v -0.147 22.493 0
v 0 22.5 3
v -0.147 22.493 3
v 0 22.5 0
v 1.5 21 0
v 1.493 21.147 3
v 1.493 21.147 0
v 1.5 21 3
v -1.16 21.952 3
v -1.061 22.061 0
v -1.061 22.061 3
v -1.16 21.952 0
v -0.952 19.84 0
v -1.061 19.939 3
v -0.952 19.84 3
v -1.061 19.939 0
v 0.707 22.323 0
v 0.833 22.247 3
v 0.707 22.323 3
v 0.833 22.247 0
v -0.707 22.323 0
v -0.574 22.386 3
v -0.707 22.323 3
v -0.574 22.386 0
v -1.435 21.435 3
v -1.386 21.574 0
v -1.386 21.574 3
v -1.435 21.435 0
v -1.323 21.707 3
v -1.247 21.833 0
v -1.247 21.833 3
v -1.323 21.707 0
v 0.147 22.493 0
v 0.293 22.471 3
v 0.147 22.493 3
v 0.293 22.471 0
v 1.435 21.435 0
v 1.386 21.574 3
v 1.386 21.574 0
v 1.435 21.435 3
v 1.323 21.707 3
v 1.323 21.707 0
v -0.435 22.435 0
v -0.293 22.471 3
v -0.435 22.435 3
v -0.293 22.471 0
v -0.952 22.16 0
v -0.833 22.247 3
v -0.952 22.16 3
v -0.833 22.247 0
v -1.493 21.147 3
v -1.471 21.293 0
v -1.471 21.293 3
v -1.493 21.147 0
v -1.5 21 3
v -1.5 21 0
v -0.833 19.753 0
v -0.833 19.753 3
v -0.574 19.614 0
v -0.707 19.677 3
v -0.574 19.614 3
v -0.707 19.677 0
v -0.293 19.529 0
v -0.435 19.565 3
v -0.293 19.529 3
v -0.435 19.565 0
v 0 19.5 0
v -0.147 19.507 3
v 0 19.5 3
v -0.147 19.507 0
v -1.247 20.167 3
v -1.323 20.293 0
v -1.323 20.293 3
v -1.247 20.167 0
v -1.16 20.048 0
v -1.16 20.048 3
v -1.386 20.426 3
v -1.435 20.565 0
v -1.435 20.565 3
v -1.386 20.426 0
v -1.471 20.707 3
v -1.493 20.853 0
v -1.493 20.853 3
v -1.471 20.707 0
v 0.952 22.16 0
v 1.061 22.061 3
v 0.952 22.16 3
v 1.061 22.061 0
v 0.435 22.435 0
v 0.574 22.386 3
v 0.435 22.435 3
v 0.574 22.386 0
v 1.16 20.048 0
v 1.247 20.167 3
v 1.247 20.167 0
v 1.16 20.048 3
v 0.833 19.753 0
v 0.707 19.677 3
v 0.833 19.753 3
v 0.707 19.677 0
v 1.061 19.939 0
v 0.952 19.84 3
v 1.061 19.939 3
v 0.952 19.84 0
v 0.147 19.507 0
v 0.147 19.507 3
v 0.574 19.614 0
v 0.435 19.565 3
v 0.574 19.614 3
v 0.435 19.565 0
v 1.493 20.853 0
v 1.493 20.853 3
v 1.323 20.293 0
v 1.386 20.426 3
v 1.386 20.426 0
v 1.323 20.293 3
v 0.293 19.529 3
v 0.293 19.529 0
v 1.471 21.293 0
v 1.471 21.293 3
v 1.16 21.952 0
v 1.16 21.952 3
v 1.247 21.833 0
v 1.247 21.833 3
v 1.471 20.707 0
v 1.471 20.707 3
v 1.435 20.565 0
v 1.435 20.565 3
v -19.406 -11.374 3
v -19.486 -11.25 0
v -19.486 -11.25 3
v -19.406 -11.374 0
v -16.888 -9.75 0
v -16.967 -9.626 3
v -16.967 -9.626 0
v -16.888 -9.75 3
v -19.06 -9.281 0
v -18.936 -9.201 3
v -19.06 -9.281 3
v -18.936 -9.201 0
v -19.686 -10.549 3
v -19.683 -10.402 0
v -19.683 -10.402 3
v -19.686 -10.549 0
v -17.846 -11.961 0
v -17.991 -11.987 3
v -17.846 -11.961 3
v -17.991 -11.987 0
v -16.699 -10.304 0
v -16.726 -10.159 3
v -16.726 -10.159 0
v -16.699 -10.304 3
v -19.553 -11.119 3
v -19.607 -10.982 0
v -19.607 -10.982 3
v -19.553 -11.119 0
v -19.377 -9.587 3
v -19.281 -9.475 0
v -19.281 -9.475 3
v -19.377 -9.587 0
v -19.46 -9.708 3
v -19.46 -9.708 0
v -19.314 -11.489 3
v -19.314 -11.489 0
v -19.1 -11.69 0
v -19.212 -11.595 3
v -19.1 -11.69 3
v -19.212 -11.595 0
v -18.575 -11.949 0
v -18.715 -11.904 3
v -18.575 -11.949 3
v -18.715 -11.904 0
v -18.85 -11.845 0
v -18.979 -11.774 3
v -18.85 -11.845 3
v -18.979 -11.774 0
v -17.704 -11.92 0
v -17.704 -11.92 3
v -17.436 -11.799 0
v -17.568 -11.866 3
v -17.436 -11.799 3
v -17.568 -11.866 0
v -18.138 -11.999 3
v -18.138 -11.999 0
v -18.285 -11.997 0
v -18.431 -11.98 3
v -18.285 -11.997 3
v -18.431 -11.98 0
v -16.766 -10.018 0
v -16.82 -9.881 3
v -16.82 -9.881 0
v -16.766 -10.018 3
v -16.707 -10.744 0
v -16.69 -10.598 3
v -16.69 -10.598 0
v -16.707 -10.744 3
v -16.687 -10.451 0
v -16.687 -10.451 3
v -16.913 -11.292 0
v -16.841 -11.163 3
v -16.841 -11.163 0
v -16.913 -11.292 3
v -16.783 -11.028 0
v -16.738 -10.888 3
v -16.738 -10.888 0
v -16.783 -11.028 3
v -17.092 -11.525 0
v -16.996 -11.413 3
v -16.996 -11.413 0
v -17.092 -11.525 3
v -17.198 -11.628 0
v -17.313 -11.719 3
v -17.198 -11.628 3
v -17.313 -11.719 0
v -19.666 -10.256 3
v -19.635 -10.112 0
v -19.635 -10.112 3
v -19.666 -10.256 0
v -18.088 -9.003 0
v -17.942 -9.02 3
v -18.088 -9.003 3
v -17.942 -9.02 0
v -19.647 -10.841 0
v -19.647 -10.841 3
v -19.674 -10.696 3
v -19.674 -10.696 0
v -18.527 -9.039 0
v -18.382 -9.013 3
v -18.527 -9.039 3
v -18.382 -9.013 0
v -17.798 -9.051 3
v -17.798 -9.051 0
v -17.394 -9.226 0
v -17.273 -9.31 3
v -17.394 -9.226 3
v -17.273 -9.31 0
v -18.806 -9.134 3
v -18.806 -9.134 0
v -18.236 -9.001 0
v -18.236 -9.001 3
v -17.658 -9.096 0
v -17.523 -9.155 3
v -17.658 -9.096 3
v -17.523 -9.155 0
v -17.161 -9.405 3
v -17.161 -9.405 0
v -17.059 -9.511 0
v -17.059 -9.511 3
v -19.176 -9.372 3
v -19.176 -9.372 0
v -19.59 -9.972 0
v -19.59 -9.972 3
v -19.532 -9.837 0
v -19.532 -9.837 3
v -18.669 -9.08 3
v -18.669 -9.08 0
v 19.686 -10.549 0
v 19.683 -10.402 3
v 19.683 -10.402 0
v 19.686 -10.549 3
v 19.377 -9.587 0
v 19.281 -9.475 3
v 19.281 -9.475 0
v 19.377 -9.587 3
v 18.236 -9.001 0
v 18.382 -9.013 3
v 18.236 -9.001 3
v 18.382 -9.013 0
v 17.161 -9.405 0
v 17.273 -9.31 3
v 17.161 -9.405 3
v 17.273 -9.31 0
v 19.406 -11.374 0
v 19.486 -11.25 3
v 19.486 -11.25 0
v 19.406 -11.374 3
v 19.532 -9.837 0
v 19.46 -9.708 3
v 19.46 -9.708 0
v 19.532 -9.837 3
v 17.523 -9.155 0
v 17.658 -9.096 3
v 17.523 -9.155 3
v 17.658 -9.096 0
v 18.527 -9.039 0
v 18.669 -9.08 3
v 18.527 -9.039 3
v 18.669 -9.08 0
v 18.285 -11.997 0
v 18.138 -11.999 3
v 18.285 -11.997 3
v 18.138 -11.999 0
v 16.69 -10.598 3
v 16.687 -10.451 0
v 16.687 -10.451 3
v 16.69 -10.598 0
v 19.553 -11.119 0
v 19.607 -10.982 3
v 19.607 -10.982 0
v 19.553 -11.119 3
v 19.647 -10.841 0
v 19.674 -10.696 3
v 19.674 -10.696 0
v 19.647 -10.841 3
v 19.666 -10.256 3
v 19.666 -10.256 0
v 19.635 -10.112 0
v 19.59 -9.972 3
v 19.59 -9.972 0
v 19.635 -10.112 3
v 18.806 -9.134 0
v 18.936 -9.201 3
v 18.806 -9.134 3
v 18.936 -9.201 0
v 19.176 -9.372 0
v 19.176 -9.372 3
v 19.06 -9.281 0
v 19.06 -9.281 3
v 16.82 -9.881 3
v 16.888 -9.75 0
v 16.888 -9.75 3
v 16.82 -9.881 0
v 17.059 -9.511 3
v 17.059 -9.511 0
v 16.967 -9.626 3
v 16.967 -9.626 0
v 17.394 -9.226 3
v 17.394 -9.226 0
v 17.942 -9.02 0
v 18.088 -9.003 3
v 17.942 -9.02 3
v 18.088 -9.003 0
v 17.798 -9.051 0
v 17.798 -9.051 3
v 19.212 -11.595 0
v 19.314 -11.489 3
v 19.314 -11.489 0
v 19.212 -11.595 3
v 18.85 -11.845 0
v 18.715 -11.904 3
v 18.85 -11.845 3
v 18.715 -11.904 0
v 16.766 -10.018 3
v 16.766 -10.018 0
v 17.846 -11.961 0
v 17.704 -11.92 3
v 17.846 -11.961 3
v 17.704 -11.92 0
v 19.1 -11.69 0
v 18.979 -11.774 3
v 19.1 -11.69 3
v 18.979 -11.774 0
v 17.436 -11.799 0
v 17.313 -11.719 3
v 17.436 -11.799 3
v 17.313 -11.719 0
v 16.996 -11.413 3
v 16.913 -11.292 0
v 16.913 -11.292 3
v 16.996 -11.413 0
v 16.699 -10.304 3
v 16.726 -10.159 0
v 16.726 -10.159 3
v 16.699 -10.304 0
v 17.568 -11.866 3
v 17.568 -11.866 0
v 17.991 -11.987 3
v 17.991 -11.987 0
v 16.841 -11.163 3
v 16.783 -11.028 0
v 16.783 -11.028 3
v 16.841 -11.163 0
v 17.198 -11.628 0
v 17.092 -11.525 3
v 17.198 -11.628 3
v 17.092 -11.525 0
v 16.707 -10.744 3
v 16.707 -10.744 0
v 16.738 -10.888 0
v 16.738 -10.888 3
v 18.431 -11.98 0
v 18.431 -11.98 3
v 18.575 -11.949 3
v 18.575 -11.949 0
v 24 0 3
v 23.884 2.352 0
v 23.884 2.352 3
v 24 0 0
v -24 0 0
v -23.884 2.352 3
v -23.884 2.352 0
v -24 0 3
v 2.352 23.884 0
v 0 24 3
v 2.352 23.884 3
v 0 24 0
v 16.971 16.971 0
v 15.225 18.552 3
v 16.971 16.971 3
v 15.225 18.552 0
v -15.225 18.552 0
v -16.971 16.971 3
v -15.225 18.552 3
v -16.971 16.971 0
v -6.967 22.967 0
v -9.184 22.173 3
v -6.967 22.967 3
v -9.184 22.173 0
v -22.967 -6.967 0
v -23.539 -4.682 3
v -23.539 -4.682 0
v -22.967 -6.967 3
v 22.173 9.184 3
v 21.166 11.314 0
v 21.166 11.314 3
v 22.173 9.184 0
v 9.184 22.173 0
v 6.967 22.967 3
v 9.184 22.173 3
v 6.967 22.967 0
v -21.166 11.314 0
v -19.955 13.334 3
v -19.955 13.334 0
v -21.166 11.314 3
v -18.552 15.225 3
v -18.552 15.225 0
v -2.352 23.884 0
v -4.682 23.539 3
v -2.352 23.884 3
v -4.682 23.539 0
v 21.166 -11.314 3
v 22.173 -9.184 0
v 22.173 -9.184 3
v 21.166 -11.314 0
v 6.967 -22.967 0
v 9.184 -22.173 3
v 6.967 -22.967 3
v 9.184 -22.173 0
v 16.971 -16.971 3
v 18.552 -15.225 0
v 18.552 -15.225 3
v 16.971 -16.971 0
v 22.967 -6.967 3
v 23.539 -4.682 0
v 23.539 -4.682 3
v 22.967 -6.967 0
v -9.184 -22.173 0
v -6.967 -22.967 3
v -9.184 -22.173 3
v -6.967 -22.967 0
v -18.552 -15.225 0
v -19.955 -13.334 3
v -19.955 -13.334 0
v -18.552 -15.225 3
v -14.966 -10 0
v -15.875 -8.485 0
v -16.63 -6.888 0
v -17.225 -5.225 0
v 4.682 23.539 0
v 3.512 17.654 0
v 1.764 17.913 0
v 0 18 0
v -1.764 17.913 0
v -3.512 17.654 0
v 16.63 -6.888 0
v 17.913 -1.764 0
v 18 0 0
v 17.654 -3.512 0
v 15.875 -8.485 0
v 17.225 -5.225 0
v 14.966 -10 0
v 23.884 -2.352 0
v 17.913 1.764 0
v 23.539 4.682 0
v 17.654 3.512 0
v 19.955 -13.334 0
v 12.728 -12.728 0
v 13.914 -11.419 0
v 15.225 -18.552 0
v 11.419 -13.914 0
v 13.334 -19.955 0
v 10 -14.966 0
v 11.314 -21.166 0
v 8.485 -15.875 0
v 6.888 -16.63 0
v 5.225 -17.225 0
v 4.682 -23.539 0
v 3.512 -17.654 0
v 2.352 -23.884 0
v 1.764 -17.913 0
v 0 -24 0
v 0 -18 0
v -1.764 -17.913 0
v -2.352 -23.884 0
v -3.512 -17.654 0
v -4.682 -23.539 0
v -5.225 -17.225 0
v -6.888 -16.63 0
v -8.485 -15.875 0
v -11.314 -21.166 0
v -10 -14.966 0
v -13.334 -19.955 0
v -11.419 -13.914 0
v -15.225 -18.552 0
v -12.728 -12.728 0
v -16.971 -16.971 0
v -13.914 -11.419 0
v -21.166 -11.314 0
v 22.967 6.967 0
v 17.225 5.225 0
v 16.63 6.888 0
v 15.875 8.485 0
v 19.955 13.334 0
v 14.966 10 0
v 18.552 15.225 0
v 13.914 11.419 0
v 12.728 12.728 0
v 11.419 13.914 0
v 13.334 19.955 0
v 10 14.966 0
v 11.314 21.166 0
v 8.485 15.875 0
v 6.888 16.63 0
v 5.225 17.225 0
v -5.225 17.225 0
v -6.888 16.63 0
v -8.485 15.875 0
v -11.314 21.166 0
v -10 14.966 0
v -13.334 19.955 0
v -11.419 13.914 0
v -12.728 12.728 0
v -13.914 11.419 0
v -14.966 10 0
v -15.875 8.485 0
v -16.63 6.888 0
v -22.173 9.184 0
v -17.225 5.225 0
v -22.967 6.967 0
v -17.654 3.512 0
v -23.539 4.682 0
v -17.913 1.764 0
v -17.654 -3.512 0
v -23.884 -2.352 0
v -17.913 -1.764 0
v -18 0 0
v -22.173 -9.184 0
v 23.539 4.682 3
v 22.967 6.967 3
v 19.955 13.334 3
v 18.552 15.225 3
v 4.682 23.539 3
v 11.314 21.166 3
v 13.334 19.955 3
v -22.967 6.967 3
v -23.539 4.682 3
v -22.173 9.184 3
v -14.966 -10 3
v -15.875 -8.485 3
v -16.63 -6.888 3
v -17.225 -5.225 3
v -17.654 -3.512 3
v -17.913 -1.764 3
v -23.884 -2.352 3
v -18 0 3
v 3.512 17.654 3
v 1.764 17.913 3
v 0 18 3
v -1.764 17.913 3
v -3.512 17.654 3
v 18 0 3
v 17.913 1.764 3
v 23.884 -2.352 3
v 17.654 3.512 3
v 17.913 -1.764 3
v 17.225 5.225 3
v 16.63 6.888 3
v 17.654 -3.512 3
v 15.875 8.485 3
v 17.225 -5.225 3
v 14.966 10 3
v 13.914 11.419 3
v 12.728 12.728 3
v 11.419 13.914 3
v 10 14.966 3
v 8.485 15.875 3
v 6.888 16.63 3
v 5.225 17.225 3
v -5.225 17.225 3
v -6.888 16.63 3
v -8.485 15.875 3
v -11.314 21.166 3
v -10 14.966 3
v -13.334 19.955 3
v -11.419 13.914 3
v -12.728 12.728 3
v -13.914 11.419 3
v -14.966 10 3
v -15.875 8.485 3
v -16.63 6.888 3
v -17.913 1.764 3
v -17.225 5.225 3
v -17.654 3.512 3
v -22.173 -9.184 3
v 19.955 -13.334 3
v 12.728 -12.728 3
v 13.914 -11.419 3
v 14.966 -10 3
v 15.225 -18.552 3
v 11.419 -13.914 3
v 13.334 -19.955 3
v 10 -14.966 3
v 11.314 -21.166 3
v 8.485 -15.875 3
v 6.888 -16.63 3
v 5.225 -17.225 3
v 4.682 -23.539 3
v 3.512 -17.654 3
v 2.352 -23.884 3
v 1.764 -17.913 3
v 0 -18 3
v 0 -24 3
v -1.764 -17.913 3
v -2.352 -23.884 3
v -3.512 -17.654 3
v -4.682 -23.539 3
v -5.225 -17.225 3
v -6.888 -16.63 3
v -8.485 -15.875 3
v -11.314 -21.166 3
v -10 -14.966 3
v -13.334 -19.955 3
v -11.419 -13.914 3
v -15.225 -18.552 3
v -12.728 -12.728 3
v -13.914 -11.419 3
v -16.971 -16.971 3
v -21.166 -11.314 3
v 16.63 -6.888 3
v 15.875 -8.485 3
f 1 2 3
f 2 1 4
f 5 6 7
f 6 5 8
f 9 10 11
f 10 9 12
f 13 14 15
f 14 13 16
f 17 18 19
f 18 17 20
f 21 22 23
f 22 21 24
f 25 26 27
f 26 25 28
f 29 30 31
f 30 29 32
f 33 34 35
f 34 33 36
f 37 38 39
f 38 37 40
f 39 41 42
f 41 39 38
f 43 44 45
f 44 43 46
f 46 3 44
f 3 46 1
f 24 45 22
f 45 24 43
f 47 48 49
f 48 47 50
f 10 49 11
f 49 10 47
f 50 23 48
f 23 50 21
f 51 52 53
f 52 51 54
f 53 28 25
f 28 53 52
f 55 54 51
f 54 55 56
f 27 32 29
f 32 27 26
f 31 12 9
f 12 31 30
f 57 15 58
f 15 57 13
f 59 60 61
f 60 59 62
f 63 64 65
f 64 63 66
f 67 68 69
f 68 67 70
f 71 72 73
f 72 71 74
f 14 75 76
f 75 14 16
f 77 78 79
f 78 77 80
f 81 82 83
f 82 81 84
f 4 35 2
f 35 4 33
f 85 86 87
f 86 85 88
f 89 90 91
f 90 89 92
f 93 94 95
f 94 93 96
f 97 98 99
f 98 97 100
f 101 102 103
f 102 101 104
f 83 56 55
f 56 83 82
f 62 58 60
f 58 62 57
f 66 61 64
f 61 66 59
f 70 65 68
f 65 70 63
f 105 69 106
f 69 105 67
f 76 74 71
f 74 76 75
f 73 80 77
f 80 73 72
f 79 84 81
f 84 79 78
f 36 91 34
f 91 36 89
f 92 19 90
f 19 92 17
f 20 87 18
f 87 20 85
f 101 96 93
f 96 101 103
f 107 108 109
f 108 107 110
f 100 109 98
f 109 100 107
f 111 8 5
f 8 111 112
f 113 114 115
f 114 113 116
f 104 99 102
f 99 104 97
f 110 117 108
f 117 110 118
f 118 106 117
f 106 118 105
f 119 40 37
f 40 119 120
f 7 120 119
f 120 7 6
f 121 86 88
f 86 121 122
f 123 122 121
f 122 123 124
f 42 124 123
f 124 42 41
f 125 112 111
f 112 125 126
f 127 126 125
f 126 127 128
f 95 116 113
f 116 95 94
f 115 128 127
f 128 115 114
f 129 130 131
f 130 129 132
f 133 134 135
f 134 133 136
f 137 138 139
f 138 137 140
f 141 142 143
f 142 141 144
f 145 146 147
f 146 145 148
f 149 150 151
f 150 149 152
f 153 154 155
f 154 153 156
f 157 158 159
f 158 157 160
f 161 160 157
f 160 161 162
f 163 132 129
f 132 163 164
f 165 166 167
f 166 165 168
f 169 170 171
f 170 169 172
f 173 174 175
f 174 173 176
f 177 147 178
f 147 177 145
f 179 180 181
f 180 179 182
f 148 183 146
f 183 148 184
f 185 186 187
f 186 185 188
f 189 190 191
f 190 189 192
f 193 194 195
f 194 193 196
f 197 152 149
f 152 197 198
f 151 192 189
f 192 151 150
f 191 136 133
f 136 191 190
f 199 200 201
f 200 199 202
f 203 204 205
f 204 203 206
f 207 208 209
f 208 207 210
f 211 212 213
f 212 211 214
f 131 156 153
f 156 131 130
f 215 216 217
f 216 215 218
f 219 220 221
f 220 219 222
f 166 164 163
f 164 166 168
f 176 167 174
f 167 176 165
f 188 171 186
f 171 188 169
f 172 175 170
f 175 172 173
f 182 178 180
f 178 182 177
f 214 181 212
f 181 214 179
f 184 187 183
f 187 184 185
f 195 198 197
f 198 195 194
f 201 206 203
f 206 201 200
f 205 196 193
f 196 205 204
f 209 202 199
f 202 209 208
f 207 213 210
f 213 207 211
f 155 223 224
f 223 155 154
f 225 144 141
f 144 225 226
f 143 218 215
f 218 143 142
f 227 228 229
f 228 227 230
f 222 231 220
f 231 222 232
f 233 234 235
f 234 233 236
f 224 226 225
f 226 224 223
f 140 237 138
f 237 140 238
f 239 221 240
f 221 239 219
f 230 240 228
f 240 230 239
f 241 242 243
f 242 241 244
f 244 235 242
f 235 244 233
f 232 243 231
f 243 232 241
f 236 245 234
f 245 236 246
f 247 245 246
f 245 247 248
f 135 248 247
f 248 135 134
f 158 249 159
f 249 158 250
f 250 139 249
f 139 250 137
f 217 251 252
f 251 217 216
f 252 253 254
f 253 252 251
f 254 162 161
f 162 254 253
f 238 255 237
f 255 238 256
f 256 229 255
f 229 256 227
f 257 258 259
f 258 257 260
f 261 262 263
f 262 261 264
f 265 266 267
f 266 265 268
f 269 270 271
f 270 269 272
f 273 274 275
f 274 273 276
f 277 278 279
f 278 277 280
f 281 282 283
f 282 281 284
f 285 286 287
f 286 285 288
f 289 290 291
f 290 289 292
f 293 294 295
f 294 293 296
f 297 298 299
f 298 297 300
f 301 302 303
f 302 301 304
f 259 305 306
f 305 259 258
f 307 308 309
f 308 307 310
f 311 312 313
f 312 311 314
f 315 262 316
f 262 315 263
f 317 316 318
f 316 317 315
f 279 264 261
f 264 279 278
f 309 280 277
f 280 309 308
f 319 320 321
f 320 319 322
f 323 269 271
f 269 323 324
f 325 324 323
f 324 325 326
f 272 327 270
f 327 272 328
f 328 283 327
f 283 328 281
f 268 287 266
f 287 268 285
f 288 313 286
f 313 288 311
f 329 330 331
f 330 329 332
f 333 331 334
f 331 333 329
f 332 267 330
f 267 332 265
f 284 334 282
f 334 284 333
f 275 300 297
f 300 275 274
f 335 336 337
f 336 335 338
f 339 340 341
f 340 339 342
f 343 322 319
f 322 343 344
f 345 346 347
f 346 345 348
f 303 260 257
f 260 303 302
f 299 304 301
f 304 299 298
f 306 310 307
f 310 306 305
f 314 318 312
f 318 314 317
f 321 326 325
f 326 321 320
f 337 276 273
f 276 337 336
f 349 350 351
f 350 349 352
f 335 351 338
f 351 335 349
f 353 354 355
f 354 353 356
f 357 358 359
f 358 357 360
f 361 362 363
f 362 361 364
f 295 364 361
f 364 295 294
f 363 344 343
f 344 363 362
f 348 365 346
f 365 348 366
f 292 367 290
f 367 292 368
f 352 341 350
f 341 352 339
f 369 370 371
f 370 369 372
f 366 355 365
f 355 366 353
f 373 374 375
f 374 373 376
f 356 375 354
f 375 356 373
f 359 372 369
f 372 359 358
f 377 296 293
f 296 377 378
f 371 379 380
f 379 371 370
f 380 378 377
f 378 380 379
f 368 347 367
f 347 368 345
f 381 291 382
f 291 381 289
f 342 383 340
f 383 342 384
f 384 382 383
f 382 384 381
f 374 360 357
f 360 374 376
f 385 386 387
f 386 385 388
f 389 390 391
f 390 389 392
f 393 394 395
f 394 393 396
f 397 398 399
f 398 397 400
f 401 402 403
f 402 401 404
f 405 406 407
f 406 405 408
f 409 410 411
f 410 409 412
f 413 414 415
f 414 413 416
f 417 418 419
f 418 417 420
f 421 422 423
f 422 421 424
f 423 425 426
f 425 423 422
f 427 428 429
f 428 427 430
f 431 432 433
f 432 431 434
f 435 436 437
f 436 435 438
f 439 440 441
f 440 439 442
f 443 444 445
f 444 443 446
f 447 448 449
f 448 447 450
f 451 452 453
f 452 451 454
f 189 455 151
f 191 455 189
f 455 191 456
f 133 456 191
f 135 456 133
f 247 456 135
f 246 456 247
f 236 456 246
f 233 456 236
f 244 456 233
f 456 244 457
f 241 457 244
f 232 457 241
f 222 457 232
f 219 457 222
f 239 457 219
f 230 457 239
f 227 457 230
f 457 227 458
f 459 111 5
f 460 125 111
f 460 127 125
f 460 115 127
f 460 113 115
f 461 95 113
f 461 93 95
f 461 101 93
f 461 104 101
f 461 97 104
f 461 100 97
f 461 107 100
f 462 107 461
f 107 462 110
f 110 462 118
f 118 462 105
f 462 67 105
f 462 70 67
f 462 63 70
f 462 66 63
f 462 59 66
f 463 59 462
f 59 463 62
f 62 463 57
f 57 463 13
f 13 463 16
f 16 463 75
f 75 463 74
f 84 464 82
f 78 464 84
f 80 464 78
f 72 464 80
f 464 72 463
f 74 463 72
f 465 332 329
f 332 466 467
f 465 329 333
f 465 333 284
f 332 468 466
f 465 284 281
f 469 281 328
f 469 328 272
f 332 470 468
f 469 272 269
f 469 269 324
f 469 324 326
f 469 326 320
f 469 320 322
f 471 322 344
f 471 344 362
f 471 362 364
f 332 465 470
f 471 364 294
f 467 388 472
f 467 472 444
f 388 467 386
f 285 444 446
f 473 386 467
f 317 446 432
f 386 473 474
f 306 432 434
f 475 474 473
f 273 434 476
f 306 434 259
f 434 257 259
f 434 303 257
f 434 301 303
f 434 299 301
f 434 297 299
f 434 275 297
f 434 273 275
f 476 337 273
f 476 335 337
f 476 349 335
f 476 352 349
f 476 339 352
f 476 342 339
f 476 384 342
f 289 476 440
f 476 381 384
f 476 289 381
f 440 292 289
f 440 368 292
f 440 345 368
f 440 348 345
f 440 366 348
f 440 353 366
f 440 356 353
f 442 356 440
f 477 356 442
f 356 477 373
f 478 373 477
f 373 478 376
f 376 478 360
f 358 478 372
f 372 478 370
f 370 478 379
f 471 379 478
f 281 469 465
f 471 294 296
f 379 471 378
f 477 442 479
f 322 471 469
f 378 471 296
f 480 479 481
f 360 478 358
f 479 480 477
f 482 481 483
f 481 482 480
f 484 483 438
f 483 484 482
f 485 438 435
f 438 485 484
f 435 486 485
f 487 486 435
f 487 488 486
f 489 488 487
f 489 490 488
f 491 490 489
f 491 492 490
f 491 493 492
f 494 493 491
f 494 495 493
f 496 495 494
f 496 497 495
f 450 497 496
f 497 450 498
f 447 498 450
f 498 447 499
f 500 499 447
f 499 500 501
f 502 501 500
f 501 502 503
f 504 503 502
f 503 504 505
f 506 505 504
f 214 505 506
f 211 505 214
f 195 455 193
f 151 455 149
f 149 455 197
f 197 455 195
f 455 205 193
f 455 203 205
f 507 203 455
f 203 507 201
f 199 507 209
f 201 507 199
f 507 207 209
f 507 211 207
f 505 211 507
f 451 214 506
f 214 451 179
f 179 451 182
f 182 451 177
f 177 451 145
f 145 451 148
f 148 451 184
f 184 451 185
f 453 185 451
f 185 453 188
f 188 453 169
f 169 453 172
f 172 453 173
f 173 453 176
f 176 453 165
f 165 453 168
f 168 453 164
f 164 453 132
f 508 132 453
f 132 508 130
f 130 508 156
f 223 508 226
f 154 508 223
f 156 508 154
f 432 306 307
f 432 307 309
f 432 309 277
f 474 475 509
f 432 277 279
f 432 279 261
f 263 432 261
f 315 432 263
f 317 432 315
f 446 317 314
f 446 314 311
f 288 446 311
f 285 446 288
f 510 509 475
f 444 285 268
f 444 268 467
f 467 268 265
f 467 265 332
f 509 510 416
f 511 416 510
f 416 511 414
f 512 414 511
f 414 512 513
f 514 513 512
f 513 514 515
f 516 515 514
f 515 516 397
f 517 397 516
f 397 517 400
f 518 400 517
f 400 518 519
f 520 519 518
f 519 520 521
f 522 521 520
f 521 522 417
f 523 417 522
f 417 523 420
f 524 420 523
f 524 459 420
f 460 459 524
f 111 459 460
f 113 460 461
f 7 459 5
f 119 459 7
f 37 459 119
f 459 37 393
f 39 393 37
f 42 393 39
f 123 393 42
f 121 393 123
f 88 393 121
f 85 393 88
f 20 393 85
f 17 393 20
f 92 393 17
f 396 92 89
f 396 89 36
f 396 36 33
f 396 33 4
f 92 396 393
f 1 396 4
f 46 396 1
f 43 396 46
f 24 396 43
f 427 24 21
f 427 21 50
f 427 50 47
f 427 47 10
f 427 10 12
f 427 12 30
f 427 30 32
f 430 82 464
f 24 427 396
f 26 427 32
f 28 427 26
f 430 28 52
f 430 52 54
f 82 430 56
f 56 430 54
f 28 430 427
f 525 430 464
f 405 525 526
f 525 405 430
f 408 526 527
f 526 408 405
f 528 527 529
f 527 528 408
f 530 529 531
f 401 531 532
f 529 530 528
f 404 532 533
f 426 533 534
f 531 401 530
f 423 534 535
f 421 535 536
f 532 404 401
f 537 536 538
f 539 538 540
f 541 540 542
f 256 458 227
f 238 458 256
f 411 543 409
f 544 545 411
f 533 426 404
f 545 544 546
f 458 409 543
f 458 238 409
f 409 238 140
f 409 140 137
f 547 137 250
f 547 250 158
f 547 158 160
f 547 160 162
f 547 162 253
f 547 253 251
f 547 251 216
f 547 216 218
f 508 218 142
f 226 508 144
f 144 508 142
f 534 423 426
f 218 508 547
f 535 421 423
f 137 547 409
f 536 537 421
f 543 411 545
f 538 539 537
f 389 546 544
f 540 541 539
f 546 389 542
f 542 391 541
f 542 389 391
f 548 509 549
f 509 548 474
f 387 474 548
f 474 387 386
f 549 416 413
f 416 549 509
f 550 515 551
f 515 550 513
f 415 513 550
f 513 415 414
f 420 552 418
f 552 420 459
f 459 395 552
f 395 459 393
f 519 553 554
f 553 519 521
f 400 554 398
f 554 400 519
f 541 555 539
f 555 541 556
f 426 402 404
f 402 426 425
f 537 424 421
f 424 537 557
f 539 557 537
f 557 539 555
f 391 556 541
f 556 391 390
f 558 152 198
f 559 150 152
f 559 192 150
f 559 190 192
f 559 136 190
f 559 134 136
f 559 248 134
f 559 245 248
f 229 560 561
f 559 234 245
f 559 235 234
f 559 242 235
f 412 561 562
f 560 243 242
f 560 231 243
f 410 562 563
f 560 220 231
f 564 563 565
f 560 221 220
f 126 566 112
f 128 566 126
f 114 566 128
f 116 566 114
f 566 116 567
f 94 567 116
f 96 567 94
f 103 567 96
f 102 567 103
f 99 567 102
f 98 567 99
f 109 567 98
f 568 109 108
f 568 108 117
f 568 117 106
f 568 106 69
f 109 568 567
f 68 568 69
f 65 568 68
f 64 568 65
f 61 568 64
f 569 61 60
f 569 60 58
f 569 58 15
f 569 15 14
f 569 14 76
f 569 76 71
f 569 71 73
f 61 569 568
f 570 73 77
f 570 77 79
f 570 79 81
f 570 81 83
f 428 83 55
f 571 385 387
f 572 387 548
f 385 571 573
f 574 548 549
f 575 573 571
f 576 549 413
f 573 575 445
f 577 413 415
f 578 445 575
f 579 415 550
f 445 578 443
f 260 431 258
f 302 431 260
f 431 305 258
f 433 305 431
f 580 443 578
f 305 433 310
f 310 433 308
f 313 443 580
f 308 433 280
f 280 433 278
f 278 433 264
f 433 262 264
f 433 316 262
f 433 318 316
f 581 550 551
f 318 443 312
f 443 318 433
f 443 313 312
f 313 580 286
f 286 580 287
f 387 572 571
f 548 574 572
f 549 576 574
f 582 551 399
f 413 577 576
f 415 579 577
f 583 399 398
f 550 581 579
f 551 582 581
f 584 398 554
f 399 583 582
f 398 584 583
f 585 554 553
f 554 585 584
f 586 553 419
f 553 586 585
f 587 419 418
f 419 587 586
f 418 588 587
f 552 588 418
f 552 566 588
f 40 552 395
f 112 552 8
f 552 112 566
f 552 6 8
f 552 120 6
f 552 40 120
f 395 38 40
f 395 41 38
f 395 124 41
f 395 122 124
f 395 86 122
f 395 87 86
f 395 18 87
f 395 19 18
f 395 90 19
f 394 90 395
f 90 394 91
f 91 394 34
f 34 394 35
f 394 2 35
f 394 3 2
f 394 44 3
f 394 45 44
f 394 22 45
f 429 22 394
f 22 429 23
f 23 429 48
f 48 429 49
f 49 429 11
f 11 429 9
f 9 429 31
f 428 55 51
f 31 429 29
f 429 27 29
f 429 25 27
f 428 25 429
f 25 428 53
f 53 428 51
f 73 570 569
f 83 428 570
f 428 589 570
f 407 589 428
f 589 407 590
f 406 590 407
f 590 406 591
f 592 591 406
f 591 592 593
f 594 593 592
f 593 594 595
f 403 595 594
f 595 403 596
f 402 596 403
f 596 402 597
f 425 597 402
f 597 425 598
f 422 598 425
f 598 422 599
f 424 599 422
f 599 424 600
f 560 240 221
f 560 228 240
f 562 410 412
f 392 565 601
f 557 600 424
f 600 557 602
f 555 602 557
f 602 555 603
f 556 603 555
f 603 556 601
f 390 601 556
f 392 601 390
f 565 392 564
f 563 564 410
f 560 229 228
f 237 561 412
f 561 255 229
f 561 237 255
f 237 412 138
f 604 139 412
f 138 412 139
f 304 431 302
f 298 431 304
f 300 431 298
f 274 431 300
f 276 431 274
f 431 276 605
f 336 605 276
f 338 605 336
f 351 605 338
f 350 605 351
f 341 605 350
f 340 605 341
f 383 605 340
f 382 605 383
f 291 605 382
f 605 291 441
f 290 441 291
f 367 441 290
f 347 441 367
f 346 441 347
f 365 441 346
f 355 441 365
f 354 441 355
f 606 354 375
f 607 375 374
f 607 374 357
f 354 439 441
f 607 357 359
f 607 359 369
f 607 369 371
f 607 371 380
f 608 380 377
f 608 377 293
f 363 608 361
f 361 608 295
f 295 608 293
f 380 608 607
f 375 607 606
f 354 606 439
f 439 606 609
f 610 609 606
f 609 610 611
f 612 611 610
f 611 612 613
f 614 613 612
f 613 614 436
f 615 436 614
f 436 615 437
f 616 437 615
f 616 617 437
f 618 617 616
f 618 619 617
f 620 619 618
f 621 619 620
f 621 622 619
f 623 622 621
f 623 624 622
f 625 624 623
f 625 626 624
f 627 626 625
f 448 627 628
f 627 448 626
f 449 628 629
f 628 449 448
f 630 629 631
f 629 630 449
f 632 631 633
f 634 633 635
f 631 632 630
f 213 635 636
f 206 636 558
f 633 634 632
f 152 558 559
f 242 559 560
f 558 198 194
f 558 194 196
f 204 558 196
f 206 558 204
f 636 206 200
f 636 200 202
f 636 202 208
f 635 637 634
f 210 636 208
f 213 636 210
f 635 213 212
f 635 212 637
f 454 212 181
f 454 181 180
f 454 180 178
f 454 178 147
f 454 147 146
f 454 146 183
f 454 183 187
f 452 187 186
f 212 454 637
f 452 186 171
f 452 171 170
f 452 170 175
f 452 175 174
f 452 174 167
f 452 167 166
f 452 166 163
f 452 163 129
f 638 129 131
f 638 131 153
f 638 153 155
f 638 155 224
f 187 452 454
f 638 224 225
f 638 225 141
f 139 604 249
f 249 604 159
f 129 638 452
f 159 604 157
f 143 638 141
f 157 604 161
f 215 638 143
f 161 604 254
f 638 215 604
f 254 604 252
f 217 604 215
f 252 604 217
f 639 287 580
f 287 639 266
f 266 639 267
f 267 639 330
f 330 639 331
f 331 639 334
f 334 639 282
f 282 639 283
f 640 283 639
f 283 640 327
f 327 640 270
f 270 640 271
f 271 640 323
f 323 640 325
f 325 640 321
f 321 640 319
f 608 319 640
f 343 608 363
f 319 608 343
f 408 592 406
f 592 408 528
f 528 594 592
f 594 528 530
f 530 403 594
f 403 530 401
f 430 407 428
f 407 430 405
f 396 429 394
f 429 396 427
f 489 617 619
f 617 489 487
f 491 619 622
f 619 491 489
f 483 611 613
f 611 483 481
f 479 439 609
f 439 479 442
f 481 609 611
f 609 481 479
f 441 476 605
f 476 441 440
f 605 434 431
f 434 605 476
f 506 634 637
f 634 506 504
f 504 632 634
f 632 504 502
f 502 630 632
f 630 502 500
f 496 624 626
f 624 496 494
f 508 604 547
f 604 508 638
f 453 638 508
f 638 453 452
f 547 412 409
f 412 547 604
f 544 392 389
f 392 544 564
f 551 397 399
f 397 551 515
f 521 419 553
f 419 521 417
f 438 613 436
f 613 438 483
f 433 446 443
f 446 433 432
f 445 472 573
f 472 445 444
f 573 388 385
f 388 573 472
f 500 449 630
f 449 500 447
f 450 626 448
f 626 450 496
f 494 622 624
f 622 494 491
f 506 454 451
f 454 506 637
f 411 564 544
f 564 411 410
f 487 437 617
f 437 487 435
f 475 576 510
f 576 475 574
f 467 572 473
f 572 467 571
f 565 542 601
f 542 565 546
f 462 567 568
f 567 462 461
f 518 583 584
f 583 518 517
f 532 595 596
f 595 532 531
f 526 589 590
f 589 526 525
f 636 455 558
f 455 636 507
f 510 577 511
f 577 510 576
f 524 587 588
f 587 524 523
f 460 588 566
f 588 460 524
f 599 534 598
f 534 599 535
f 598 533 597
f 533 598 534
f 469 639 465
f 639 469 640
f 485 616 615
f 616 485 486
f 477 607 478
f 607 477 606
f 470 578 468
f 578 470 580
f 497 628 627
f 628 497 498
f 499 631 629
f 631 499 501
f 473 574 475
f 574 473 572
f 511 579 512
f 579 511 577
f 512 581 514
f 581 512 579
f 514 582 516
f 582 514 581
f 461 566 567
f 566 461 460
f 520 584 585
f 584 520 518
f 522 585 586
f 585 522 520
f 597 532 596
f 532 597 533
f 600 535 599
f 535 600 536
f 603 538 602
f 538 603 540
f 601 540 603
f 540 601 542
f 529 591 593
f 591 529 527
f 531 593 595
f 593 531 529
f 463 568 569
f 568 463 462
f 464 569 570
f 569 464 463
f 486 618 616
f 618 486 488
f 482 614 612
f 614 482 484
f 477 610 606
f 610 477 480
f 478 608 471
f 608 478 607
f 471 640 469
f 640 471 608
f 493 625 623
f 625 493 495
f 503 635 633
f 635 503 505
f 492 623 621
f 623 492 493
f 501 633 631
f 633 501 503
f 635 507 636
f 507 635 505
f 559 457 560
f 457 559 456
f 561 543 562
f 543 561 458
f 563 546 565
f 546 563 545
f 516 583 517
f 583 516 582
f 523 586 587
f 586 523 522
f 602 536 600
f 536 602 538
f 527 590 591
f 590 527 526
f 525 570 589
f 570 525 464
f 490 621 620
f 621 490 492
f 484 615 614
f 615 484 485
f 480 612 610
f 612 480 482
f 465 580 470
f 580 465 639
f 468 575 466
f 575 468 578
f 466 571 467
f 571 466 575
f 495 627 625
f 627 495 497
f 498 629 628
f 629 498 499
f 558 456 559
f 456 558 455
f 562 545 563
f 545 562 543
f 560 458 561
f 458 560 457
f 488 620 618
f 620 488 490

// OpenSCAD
skip_main_render = true;
include <../../optical_setup.scad>

condenser_lens_retainer();
